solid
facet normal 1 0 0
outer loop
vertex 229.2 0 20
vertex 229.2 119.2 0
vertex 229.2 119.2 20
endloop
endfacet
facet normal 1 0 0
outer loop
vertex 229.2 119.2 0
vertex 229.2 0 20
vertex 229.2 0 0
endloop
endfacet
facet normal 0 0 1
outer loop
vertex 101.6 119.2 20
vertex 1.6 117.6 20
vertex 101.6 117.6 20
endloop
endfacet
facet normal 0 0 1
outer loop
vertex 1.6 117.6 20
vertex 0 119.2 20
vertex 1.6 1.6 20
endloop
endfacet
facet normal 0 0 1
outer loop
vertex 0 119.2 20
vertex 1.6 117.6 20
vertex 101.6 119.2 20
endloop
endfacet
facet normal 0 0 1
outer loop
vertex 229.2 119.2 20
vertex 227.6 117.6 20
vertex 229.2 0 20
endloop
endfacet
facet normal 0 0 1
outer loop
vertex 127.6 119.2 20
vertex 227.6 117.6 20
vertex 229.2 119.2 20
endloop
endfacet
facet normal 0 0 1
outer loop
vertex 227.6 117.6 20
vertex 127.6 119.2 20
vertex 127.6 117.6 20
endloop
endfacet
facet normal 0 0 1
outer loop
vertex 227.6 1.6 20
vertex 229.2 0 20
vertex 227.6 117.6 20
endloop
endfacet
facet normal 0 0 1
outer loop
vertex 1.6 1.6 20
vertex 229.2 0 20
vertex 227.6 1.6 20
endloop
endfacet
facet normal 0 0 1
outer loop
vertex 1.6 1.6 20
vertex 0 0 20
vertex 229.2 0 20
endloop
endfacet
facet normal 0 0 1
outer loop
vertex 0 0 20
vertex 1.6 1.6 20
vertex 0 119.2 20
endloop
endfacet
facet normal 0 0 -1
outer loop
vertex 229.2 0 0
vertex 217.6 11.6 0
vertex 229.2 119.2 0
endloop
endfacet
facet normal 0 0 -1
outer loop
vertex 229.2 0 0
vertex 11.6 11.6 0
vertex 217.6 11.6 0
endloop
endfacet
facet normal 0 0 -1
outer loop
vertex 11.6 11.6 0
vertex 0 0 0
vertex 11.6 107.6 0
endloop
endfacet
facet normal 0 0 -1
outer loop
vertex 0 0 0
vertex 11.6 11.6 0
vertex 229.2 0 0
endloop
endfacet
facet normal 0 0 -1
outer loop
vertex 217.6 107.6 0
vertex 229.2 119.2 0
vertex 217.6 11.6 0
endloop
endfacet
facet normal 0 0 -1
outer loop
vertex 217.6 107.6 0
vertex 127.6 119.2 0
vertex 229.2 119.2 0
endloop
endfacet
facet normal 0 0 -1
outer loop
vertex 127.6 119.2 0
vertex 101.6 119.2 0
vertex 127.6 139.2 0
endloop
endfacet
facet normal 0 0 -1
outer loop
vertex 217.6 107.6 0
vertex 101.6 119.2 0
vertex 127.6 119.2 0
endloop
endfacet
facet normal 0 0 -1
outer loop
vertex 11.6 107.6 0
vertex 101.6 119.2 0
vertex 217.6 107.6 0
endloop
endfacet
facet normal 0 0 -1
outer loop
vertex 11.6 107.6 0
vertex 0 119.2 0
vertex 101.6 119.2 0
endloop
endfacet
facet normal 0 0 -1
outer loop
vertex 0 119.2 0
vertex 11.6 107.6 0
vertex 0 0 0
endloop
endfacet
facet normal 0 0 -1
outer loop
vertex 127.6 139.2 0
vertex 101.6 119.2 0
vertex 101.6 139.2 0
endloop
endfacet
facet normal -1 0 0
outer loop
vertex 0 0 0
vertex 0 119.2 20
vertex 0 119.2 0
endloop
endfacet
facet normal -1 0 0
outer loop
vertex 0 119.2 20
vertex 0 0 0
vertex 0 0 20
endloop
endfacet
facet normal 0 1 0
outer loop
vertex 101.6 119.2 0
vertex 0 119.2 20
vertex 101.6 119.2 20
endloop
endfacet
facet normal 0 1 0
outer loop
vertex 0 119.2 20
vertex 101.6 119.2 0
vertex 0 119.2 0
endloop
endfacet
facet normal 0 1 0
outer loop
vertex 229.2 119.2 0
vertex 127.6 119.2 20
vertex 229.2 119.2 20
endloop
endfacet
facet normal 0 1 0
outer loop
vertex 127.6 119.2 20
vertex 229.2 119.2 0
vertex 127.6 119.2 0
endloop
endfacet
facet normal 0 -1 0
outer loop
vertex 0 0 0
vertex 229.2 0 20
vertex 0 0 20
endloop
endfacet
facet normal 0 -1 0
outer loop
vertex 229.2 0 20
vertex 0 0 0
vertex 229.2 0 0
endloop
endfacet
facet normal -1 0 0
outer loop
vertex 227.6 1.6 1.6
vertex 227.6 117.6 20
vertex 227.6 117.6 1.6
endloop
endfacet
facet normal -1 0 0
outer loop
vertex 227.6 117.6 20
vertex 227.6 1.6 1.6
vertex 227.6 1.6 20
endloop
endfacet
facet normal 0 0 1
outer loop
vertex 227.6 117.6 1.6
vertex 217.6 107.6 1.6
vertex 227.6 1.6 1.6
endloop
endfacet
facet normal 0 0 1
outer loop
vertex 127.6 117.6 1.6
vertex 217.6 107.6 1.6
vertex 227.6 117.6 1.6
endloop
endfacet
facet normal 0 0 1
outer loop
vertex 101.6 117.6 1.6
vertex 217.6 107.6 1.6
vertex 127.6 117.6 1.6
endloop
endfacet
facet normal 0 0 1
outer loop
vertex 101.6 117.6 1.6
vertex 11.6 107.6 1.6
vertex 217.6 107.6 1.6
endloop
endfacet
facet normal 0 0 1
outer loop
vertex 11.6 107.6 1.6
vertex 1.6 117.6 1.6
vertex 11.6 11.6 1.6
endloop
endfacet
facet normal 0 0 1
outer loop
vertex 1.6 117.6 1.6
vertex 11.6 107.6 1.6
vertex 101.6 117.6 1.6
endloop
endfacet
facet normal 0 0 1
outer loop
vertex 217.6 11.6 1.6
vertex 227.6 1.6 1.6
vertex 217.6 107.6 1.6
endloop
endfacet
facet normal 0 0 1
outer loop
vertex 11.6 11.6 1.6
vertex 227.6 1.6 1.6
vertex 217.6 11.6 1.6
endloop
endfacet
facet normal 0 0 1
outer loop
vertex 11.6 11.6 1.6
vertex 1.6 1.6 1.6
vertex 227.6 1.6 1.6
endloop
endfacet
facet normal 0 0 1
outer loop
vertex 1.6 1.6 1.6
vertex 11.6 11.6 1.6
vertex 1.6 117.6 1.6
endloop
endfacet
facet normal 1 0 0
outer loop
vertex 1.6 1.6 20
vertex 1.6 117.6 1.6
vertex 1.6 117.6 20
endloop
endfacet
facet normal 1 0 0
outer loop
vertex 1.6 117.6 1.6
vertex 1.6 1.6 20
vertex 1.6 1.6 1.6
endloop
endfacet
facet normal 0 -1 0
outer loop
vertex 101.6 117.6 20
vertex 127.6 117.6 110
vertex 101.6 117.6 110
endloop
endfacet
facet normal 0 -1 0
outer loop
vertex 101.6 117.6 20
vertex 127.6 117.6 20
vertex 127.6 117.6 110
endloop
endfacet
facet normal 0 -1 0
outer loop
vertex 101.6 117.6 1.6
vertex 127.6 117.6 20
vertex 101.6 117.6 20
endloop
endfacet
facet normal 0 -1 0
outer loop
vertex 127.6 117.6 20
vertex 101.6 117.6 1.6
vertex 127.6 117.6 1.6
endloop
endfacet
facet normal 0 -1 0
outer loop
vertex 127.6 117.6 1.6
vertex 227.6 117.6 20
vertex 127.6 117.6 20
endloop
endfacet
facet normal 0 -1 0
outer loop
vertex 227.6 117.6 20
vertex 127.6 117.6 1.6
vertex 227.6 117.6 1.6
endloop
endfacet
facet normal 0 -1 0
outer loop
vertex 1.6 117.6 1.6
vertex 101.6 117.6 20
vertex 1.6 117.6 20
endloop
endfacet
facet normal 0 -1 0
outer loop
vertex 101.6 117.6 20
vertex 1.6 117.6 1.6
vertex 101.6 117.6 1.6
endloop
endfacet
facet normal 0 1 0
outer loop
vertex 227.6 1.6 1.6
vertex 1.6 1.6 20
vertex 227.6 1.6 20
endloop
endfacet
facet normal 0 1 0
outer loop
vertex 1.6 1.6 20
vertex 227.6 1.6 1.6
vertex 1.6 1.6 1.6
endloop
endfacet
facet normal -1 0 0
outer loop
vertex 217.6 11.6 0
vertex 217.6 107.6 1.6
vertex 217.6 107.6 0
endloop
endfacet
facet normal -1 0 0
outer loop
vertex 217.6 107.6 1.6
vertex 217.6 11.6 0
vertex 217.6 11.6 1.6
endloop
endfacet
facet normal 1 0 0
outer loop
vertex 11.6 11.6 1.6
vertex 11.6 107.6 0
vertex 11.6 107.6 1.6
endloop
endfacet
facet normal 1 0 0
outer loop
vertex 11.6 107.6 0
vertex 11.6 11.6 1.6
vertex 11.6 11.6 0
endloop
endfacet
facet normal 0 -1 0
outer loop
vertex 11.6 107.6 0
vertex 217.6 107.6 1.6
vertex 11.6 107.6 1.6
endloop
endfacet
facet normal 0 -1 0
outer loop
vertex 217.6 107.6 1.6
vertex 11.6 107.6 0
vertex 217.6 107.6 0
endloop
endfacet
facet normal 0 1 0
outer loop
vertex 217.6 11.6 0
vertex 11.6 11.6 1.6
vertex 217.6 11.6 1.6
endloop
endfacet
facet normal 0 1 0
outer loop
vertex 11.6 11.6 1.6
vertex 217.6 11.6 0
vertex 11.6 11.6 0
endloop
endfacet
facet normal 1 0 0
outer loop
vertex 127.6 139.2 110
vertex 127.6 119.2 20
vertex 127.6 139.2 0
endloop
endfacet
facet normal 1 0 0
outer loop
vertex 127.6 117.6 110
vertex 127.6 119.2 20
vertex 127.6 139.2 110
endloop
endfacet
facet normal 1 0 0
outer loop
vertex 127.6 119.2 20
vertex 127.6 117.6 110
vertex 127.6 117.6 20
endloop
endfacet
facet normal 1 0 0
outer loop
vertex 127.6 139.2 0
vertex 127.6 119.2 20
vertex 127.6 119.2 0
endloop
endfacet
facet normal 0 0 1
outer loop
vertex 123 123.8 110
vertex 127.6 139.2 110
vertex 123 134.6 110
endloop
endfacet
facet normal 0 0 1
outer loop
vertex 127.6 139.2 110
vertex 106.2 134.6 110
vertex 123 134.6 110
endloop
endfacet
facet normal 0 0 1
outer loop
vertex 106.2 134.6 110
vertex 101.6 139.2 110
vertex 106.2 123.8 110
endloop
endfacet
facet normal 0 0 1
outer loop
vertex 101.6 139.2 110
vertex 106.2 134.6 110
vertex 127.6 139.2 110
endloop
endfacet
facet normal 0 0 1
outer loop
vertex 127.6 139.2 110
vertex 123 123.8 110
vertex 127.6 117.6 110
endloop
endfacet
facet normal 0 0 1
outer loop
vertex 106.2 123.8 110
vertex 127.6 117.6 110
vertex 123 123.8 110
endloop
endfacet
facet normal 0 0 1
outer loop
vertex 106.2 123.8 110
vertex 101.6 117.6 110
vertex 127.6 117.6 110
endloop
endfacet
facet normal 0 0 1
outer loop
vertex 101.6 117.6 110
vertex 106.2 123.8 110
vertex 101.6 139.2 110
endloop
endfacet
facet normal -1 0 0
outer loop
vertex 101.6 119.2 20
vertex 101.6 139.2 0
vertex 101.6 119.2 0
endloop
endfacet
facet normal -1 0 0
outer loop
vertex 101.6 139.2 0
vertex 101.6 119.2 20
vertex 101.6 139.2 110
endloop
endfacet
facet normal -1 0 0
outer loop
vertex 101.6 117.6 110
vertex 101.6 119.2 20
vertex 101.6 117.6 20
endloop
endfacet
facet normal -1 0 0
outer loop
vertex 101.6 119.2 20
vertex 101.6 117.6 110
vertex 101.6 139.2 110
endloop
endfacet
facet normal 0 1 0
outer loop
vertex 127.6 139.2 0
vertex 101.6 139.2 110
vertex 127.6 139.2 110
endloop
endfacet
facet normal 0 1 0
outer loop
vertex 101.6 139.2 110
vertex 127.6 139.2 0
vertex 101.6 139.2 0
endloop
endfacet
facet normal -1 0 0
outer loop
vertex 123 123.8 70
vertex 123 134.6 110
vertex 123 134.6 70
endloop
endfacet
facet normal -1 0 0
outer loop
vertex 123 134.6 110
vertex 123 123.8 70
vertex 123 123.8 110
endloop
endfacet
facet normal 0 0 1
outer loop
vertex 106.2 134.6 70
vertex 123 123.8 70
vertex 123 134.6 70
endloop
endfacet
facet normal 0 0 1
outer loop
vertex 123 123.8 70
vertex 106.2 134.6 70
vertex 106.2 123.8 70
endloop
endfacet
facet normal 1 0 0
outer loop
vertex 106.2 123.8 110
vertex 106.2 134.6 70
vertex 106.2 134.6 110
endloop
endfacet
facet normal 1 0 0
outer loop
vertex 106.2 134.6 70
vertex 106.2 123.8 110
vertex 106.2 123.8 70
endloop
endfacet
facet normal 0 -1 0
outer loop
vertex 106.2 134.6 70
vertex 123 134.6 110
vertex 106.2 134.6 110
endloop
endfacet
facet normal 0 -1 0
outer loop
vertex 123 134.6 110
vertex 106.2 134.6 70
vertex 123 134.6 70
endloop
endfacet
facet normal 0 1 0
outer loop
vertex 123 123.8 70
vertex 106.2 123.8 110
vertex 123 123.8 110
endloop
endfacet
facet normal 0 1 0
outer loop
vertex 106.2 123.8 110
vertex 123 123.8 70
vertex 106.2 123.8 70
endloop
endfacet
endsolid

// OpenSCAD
// file: lib.scad
// Shared pieces for the Winterlight PETG parts (Bambu Lab A1, 256 × 256 × 256 mm).
// Millimetres. Measure your own mounting strip and set strip_w / strip_t on the
// command line (-D strip_w=20) or in OpenSCAD's Customizer before printing.
$fn = 72;
strip_w = 30;   // pixel mounting strip width
strip_t = 1.54; // pixel mounting strip thickness (measured)
clr = 0.4;      // clearance per side, a snug slide fit in PETG
wall = 3;       // channel walls
tie_d = 4.5;    // holes for the 2.5 mm cable ties or an M4 bolt

// Closed slots the strip slides through (the ground strip's posts).
slot_t = strip_t + 2*clr;
slot_w = strip_w + 2*clr;
// Open pockets the strip ends sit in (mini trees, tree hub and ring): a close
// fit across, and a little shallower than the strip, so the strip stands
// proud of the face and the cable tie clamps it down.
proud = 0.3;
pocket_t = strip_t - proud;
pocket_w = strip_w + 2*0.2;
// Outside size of a strip channel: radial depth and tangential width.
ch_depth = pocket_t + wall;
ch_width = pocket_w + 2*wall;

// A channel that holds a strip's end: the strip runs up +Z with its face
// (and its pixels) towards +X. Open on the +X side so the strip drops in,
// with a groove round the outside where a cable tie pulls it home.
module channel(h, floor = 3) {
  z0 = h*0.55;
  difference() {
    translate([-ch_depth, -ch_width/2, 0]) cube([ch_depth, ch_width, h]);
    translate([-pocket_t, -pocket_w/2, floor]) cube([pocket_t + 1, pocket_w, h]);
    // Tie groove, 1 mm deep, round the back and both sides.
    difference() {
      translate([-ch_depth - 1, -ch_width/2 - 1, z0]) cube([ch_depth + 2, ch_width + 2, 5]);
      translate([-ch_depth + 1, -ch_width/2 + 1, z0 - 1]) cube([ch_depth + 2, ch_width - 2, 7]);
    }
  }
}

// n channels on a circle of radius r (the strip's face), leaning by tilt
// degrees: positive leans the top inwards, negative outwards.
module channel_ring(n, r, tilt, h, start = 0) {
  intersection() {
    for (i = [0 : n - 1]) rotate([0, 0, start + 360*i/n])
      translate([r, 0, 0]) rotate([0, -tilt, 0]) channel(h);
    translate([-1000, -1000, 0]) cube([2000, 2000, 1000]);
  }
}

// A flat ring with spokes to a centre boss: the plate that ties the channels together.
module spoked_ring(r_out, r_in, t, n, boss_d, arm_w = 8) {
  difference() { cylinder(r = r_out, h = t); translate([0, 0, -1]) cylinder(r = r_in, h = t + 2); }
  for (i = [0 : n - 1]) rotate([0, 0, 360*i/n + 180/n]) translate([0, -arm_w/2, 0]) cube([r_in + 1, arm_w, t]);
  cylinder(d = boss_d, h = t);
}

// Bricks for ballast: the paving in front of the house is stone, so nothing
// can be staked into it. The feet are trays that hold standard concrete paving
// bricks (betonklinkers, 22 × 11 × 8 cm, about 4 kg each). Set your own size.
brick_l = 220;
brick_w = 110;
brick_h = 80;
brick_clr = 3;      // bricks vary a few millimetres
tray_wall = 1.6;
tray_h = 20;
tray_lip = 10;      // the floor is only a ledge round the edge, to save PETG
tray_floor = 1.6;

// A tray for n bricks side by side along Y, its corner at the origin.
// gap: extra room between the bricks (for a rib); returns nothing, see tray_size.
function tray_inner(n = 1, gap = 0) = [brick_l + 2*brick_clr, n*(brick_w + 2*brick_clr) + gap];
module tray(n = 1, gap = 0) {
  in = tray_inner(n, gap);
  out = [in[0] + 2*tray_wall, in[1] + 2*tray_wall];
  difference() {
    cube([out[0], out[1], tray_h]);
    translate([tray_wall, tray_wall, tray_floor]) cube([in[0], in[1], tray_h]);
    translate([tray_wall + tray_lip, tray_wall + tray_lip, -1]) cube([in[0] - 2*tray_lip, in[1] - 2*tray_lip, tray_floor + 2]);
  }
}
// main file
// Ground strip, foot of a post: a tray for one paving brick, lying along the
// strip behind it, with a socket for the post at the front. Print as is.
include <lib.scad>
tenon_w = 10;      // the post's tenon, across the strip
tenon_t = 16;      // and along it
socket_h = 110;
socket_depth = 40;
in = tray_inner(1);
out = [in[0] + 2*tray_wall, in[1] + 2*tray_wall];
block = [tenon_t + 10, tenon_w + 10];

difference() {
  union() {
    tray(1);
    // Socket on the front (+Y) side, in the middle.
    translate([out[0]/2 - block[0]/2, out[1] - tray_wall, 0]) cube([block[0], block[1] + tray_wall, socket_h]);
  }
  translate([out[0]/2 - tenon_t/2 - clr, out[1] + 5 - clr, socket_h - socket_depth]) cube([tenon_t + 2*clr, tenon_w + 2*clr, socket_depth + 1]);
}
